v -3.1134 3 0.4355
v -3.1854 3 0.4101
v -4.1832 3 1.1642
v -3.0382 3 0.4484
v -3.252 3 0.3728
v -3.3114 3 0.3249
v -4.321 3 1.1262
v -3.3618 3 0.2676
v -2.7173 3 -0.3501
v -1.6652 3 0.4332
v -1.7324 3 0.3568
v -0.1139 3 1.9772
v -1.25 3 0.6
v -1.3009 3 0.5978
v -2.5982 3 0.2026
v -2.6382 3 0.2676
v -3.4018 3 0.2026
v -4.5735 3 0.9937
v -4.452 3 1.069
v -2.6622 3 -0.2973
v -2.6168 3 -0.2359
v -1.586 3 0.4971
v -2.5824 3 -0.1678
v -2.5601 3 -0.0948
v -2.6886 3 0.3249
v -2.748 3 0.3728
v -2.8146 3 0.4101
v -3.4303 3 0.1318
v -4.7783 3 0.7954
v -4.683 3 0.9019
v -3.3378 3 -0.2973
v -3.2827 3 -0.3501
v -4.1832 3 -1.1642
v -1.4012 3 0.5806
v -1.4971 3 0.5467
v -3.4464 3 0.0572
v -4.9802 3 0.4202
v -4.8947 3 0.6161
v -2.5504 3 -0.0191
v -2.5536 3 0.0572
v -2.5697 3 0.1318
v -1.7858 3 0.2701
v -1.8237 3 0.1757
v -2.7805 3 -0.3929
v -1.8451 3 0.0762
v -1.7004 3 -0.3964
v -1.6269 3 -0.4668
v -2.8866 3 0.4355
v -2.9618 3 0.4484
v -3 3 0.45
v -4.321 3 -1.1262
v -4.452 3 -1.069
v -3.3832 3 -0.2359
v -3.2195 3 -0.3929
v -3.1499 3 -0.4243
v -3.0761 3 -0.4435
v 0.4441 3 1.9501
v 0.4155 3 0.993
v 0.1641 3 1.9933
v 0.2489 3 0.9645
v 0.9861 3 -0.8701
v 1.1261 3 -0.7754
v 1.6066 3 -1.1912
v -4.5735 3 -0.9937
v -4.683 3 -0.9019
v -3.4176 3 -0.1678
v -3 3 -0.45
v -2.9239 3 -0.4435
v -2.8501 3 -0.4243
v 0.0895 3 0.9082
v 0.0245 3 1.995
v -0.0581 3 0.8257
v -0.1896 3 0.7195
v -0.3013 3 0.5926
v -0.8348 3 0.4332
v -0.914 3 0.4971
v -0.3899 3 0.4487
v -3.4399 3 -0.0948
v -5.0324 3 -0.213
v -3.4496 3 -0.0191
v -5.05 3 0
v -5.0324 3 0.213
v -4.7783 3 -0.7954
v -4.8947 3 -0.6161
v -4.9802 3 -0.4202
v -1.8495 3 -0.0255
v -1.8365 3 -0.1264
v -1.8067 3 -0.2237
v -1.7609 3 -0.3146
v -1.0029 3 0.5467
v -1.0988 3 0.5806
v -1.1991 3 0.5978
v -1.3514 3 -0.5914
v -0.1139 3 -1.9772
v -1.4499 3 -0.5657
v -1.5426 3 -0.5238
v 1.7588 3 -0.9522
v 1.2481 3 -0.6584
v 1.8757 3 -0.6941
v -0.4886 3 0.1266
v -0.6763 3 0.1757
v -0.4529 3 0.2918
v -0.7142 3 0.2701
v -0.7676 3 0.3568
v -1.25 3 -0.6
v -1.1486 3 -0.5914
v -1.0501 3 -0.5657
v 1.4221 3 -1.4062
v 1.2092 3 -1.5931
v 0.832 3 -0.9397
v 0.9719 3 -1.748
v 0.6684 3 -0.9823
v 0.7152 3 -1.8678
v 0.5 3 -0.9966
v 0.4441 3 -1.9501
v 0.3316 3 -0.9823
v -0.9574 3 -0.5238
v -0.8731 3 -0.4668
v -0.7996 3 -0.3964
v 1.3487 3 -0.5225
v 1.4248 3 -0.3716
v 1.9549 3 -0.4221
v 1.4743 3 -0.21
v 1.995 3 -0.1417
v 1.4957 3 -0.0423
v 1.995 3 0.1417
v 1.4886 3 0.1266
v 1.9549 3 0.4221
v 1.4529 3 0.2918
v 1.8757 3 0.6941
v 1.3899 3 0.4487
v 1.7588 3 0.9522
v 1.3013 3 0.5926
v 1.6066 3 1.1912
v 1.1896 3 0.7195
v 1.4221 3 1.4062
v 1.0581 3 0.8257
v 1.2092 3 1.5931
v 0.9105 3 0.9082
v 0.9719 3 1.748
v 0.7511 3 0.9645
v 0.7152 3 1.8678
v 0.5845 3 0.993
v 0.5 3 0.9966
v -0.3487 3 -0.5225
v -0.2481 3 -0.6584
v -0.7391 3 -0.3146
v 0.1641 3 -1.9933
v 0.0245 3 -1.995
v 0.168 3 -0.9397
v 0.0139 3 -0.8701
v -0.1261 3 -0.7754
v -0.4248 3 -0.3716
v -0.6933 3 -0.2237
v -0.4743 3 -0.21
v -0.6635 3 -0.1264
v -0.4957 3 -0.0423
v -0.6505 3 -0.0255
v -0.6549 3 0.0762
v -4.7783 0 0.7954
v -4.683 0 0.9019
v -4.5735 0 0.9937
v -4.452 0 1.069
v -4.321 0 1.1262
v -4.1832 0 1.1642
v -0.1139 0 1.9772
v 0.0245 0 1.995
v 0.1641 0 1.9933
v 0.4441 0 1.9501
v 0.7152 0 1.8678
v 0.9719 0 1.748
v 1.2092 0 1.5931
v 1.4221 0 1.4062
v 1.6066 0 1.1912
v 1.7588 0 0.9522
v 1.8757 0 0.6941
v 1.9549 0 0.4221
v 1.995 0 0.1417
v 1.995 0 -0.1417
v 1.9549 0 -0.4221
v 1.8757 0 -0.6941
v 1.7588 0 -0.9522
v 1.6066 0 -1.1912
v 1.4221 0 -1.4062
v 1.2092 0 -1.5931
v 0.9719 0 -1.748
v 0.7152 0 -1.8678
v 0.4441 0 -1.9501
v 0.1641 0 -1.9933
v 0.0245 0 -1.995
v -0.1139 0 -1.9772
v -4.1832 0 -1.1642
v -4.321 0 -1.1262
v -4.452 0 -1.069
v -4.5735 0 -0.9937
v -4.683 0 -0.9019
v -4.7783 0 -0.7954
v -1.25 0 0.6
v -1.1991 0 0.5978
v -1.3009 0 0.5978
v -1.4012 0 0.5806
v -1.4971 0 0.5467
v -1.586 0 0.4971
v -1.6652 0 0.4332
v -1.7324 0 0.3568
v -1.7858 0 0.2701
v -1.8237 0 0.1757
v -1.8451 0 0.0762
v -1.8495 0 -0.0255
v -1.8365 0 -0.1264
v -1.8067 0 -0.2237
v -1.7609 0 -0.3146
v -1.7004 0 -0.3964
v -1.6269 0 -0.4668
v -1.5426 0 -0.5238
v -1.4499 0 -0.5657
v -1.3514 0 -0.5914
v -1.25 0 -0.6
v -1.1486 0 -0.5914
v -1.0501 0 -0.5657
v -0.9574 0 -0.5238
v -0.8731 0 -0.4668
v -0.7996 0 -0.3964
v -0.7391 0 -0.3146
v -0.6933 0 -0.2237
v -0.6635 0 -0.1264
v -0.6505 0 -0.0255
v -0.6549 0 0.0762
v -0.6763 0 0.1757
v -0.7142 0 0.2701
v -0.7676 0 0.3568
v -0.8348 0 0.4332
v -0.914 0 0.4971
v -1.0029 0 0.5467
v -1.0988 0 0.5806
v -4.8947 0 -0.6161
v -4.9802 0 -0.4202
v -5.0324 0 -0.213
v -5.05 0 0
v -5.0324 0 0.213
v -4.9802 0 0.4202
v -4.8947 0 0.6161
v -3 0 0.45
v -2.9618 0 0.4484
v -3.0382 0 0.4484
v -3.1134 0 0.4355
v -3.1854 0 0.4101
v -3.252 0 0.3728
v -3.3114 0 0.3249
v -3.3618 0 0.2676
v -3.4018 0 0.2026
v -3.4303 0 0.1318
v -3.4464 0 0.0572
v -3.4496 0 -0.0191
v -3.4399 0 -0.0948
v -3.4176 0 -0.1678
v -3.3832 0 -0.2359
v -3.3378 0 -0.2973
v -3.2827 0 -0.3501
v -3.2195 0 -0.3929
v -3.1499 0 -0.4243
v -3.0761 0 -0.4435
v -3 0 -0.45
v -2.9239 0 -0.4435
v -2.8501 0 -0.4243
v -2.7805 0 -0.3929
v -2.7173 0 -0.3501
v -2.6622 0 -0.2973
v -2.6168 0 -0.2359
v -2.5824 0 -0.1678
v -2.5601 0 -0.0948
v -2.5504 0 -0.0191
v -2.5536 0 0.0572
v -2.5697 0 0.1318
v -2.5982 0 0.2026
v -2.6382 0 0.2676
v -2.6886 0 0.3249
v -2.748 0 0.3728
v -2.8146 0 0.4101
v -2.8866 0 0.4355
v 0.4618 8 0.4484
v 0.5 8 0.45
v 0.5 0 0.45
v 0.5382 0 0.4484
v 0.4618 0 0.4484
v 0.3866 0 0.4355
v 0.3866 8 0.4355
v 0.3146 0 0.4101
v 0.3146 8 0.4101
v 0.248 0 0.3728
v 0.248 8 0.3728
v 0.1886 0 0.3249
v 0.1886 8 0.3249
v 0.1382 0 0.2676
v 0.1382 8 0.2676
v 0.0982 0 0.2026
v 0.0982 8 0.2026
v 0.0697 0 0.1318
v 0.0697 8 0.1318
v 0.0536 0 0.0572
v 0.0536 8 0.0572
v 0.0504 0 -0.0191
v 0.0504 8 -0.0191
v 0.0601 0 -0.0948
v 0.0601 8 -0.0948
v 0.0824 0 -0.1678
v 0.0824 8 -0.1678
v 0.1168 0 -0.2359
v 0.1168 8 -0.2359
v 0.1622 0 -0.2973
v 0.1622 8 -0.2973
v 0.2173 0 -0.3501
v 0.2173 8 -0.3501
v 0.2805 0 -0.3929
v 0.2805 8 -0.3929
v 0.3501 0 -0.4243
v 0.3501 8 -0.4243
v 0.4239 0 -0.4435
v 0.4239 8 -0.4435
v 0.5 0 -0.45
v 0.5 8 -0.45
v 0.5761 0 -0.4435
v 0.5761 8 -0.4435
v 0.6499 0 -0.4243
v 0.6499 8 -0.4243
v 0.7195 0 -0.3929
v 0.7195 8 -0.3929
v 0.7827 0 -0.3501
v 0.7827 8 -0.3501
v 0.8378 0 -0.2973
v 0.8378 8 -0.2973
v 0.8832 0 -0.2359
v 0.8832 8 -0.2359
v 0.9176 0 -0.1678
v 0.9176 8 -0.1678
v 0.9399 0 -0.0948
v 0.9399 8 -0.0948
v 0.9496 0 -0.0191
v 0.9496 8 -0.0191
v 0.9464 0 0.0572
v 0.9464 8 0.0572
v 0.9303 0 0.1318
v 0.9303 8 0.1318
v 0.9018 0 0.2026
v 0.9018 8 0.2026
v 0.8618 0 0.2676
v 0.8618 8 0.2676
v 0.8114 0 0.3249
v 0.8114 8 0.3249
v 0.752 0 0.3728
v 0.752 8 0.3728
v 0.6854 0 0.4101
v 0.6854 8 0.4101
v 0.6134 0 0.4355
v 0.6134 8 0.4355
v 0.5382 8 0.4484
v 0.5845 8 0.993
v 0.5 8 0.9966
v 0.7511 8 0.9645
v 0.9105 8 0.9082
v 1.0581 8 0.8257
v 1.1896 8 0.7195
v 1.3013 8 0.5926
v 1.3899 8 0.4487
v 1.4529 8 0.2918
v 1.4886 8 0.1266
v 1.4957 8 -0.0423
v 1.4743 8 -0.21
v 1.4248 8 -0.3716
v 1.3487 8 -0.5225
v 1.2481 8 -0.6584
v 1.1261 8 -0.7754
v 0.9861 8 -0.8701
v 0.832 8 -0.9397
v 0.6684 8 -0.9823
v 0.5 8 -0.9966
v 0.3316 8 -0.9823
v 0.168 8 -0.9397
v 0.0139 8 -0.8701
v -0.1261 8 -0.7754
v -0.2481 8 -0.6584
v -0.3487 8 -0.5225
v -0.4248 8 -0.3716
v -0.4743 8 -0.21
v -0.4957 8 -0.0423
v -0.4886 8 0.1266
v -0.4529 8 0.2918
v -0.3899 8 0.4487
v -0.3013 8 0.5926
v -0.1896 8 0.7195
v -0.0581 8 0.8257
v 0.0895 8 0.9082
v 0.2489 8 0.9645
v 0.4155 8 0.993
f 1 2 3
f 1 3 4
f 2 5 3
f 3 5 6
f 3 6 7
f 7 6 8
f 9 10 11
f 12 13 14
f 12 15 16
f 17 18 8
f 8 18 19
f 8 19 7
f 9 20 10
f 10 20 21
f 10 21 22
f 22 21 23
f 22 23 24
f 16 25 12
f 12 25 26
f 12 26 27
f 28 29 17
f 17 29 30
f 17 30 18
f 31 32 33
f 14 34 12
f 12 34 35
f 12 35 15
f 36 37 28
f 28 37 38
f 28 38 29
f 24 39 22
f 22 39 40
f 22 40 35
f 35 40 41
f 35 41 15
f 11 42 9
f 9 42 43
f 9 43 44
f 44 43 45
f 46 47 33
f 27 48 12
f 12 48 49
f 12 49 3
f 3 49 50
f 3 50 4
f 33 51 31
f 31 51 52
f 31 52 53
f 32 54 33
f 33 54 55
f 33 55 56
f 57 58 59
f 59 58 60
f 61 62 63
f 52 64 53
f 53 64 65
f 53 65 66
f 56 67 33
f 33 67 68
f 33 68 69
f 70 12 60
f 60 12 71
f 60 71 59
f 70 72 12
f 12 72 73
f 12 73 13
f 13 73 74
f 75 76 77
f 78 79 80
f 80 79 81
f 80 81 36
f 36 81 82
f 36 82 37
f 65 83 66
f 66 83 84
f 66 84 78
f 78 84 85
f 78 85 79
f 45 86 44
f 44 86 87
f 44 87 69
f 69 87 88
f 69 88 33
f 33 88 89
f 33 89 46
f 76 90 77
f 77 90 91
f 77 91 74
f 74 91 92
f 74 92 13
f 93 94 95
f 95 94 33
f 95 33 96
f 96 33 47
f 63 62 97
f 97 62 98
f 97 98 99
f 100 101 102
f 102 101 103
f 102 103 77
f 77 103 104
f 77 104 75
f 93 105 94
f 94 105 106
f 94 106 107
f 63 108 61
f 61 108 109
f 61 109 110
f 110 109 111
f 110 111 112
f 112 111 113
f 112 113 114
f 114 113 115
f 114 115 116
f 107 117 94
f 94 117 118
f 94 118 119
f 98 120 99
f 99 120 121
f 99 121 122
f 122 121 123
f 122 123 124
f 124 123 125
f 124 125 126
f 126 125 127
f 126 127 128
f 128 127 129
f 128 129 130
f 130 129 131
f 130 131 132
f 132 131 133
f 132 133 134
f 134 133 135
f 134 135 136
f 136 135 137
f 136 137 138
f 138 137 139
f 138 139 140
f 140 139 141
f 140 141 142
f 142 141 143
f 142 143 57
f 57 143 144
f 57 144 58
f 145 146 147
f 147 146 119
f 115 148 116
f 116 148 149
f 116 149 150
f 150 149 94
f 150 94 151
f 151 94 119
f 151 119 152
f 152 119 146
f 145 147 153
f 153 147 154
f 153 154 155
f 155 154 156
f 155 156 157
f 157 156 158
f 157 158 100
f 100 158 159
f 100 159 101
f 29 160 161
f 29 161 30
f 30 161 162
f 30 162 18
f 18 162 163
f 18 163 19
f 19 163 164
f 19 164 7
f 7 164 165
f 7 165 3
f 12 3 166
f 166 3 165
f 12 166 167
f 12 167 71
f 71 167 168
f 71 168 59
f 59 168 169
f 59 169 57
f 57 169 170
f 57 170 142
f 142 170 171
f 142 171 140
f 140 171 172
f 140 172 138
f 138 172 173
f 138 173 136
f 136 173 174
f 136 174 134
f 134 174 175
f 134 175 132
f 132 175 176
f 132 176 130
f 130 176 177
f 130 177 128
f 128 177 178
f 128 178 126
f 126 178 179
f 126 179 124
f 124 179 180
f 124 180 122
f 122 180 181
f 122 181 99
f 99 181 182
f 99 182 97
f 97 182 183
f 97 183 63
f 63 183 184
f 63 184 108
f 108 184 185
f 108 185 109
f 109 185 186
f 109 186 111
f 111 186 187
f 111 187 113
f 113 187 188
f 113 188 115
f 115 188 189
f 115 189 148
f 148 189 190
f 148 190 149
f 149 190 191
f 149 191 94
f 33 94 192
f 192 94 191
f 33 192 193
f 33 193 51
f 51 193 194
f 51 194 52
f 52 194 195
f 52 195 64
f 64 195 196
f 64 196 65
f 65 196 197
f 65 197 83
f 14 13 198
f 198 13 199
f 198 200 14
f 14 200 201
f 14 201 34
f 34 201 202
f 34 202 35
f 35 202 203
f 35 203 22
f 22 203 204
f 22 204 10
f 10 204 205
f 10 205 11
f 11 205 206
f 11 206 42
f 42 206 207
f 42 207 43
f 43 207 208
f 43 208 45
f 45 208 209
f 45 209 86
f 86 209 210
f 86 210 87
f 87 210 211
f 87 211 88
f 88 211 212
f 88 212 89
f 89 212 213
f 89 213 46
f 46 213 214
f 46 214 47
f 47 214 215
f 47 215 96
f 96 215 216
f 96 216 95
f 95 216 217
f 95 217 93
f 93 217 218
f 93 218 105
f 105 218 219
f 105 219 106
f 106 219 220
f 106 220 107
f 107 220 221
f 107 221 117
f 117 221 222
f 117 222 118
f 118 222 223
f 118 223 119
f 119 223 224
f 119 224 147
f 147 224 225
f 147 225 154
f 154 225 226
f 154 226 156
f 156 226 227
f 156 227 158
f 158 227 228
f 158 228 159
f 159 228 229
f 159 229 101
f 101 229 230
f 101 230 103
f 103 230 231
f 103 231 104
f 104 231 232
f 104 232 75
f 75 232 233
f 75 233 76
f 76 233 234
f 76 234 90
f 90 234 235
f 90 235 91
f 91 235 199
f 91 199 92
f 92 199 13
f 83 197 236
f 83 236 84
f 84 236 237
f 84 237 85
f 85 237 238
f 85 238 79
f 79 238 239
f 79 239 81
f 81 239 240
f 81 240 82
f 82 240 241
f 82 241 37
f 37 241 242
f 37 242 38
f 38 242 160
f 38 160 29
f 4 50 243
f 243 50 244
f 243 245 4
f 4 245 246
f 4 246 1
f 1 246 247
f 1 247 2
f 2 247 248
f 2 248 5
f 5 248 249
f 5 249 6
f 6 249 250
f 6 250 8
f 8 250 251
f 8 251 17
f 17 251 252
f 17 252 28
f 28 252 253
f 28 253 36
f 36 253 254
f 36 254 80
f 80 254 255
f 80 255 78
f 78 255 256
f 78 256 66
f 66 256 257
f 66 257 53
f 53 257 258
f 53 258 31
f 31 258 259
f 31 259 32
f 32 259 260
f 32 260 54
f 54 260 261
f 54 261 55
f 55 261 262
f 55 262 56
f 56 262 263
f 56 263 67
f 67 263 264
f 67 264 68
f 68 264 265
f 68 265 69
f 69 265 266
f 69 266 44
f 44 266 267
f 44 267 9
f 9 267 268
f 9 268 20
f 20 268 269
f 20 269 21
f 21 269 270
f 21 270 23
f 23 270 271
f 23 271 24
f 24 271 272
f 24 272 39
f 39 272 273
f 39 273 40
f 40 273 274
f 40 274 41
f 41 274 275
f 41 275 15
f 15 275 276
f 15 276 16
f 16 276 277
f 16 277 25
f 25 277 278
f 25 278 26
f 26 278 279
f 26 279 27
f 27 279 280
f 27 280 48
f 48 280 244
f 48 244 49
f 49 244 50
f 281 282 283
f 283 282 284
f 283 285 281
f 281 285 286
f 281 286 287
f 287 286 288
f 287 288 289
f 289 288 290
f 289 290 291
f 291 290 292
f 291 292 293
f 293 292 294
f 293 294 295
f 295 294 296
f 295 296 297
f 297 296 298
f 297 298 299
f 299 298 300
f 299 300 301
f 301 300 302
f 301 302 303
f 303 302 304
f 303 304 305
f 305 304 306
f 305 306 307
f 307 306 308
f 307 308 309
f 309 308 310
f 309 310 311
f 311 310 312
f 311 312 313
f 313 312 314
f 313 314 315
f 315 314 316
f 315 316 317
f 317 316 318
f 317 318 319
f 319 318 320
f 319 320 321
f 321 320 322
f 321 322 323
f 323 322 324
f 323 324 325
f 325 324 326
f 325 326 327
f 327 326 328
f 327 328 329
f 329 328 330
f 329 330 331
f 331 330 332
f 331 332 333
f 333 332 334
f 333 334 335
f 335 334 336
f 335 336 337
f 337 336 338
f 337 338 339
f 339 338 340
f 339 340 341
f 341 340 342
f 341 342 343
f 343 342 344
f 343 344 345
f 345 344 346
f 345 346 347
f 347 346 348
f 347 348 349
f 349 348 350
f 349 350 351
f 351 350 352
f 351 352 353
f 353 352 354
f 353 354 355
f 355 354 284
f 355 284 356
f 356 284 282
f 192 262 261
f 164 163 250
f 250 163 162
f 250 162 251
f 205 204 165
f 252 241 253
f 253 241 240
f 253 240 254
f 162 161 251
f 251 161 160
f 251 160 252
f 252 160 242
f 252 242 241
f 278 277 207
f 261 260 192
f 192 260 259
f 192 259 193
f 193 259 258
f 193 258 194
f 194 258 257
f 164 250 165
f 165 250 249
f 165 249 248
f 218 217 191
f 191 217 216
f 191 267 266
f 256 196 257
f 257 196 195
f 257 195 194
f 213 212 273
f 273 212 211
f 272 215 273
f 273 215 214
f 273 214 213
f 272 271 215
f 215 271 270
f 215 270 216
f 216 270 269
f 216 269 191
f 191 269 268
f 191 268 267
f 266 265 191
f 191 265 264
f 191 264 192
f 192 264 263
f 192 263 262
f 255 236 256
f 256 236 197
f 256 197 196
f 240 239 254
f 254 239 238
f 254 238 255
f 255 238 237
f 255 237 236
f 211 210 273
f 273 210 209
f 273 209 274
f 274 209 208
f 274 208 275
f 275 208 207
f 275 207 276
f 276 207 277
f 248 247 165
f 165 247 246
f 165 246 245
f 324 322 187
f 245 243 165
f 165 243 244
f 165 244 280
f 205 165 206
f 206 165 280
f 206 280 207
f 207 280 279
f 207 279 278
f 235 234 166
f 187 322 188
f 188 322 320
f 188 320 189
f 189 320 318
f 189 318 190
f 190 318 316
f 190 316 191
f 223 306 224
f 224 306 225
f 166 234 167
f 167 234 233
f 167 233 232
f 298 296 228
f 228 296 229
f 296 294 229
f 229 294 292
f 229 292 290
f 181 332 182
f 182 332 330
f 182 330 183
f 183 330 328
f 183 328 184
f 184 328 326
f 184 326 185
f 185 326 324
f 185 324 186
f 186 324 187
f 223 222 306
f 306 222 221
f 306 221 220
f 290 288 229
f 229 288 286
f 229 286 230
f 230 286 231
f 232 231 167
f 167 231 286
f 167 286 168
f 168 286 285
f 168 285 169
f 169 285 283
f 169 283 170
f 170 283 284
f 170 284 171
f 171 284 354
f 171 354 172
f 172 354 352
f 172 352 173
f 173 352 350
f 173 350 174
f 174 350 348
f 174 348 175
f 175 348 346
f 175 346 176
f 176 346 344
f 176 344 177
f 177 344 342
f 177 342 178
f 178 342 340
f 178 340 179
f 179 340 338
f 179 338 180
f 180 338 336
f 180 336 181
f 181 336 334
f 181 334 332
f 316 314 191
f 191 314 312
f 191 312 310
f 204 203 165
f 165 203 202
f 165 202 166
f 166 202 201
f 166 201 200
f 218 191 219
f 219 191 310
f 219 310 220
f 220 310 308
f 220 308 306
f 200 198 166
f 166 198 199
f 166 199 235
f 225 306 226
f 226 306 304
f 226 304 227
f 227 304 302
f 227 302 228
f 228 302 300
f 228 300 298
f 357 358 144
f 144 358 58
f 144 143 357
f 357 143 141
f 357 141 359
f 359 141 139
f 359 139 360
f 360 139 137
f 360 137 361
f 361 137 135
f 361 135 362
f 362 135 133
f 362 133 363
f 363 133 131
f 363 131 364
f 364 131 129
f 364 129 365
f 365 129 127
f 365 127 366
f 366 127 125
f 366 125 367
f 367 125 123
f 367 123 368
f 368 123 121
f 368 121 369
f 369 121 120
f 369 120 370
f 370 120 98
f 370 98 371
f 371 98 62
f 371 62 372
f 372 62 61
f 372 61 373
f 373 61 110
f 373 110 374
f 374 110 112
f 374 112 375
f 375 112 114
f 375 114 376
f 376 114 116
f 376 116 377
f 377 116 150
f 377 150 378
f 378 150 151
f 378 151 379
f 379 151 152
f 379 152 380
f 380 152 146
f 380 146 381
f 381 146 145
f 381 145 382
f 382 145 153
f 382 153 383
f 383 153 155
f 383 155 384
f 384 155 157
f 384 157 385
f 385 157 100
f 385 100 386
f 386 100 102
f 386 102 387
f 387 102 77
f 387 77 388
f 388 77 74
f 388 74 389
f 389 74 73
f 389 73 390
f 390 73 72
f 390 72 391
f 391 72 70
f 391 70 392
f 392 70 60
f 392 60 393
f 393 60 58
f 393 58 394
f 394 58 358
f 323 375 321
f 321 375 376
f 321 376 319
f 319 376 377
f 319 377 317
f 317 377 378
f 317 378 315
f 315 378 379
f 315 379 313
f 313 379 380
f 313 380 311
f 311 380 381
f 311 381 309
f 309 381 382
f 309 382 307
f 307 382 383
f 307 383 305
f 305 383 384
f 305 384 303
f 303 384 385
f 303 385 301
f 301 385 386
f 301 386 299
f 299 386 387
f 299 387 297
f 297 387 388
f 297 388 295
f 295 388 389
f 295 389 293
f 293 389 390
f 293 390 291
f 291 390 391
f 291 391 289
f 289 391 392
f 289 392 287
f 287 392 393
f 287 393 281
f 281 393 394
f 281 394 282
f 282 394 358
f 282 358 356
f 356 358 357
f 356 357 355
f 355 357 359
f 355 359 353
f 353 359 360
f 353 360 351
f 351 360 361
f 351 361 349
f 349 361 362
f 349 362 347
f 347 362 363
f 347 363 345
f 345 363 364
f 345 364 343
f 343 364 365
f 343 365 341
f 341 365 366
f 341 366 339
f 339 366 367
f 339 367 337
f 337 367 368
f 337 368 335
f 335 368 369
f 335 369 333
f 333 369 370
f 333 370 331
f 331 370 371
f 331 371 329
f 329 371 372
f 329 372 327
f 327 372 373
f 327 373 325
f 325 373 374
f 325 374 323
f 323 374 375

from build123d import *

# Parameters (mm, degrees)
SKETCH1_R           = 0.45
SKETCH1_R_2         = 0.6
BOSS_EXTRUDE1_DEPTH = 3
SKETCH1_22_R        = 0.996628177
SKETCH1_22_R_2      = 0.45
BOSS_EXTRUDE2_DEPTH = 8


with BuildPart() as part:
    # Sketch1 → Boss-Extrude1 (new body)
    with BuildSketch(Plane(origin=(0, 0, 0), x_dir=(1, 0, 0), z_dir=(0, 1, 0))):
        with BuildLine():
            ThreePointArc((0.1641009, 1.993256355), (0.024548565, 1.994973575), (-0.113883759, 1.977245221))
            Line((-0.113883759, 1.977245221), (-4.183235691, 1.164159973))
            ThreePointArc((-4.183235691, 1.164159973), (-4.514100231, 1.033532975), (-4.77830642, 0.795352694))
            ThreePointArc((-4.77830642, 0.795352694), (-5.05, 0), (-4.77830642, -0.795352694))
            ThreePointArc((-4.77830642, -0.795352694), (-4.514100231, -1.033532975), (-4.183235691, -1.164159973))
            Line((-4.183235691, -1.164159973), (-0.11388376, -1.977245221))
            ThreePointArc((-0.11388376, -1.977245221), (0.024548564, -1.994973575), (0.164100898, -1.993256355))
            ThreePointArc((0.164100898, -1.993256355), (2, -1e-09), (0.1641009, 1.993256355))
        make_face()
        with Locations((-3, 0)):
            Circle(SKETCH1_R, mode=Mode.SUBTRACT)
        with Locations((-1.25, 0)):
            Circle(SKETCH1_R_2, mode=Mode.SUBTRACT)
        with Locations((0.5, 0)):
            Circle(SKETCH1_R, mode=Mode.SUBTRACT)
    extrude(amount=BOSS_EXTRUDE1_DEPTH)

    # Sketch1<22> → Boss-Extrude2 (add)
    with BuildSketch(Plane(origin=(0, 0, 0), x_dir=(1, 0, 0), z_dir=(0, 1, 0))):
        with Locations((0.5, 0)):
            Circle(SKETCH1_22_R)
        with Locations((0.5, 0)):
            Circle(SKETCH1_22_R_2, mode=Mode.SUBTRACT)
    extrude(amount=BOSS_EXTRUDE2_DEPTH)


solid = part.part
